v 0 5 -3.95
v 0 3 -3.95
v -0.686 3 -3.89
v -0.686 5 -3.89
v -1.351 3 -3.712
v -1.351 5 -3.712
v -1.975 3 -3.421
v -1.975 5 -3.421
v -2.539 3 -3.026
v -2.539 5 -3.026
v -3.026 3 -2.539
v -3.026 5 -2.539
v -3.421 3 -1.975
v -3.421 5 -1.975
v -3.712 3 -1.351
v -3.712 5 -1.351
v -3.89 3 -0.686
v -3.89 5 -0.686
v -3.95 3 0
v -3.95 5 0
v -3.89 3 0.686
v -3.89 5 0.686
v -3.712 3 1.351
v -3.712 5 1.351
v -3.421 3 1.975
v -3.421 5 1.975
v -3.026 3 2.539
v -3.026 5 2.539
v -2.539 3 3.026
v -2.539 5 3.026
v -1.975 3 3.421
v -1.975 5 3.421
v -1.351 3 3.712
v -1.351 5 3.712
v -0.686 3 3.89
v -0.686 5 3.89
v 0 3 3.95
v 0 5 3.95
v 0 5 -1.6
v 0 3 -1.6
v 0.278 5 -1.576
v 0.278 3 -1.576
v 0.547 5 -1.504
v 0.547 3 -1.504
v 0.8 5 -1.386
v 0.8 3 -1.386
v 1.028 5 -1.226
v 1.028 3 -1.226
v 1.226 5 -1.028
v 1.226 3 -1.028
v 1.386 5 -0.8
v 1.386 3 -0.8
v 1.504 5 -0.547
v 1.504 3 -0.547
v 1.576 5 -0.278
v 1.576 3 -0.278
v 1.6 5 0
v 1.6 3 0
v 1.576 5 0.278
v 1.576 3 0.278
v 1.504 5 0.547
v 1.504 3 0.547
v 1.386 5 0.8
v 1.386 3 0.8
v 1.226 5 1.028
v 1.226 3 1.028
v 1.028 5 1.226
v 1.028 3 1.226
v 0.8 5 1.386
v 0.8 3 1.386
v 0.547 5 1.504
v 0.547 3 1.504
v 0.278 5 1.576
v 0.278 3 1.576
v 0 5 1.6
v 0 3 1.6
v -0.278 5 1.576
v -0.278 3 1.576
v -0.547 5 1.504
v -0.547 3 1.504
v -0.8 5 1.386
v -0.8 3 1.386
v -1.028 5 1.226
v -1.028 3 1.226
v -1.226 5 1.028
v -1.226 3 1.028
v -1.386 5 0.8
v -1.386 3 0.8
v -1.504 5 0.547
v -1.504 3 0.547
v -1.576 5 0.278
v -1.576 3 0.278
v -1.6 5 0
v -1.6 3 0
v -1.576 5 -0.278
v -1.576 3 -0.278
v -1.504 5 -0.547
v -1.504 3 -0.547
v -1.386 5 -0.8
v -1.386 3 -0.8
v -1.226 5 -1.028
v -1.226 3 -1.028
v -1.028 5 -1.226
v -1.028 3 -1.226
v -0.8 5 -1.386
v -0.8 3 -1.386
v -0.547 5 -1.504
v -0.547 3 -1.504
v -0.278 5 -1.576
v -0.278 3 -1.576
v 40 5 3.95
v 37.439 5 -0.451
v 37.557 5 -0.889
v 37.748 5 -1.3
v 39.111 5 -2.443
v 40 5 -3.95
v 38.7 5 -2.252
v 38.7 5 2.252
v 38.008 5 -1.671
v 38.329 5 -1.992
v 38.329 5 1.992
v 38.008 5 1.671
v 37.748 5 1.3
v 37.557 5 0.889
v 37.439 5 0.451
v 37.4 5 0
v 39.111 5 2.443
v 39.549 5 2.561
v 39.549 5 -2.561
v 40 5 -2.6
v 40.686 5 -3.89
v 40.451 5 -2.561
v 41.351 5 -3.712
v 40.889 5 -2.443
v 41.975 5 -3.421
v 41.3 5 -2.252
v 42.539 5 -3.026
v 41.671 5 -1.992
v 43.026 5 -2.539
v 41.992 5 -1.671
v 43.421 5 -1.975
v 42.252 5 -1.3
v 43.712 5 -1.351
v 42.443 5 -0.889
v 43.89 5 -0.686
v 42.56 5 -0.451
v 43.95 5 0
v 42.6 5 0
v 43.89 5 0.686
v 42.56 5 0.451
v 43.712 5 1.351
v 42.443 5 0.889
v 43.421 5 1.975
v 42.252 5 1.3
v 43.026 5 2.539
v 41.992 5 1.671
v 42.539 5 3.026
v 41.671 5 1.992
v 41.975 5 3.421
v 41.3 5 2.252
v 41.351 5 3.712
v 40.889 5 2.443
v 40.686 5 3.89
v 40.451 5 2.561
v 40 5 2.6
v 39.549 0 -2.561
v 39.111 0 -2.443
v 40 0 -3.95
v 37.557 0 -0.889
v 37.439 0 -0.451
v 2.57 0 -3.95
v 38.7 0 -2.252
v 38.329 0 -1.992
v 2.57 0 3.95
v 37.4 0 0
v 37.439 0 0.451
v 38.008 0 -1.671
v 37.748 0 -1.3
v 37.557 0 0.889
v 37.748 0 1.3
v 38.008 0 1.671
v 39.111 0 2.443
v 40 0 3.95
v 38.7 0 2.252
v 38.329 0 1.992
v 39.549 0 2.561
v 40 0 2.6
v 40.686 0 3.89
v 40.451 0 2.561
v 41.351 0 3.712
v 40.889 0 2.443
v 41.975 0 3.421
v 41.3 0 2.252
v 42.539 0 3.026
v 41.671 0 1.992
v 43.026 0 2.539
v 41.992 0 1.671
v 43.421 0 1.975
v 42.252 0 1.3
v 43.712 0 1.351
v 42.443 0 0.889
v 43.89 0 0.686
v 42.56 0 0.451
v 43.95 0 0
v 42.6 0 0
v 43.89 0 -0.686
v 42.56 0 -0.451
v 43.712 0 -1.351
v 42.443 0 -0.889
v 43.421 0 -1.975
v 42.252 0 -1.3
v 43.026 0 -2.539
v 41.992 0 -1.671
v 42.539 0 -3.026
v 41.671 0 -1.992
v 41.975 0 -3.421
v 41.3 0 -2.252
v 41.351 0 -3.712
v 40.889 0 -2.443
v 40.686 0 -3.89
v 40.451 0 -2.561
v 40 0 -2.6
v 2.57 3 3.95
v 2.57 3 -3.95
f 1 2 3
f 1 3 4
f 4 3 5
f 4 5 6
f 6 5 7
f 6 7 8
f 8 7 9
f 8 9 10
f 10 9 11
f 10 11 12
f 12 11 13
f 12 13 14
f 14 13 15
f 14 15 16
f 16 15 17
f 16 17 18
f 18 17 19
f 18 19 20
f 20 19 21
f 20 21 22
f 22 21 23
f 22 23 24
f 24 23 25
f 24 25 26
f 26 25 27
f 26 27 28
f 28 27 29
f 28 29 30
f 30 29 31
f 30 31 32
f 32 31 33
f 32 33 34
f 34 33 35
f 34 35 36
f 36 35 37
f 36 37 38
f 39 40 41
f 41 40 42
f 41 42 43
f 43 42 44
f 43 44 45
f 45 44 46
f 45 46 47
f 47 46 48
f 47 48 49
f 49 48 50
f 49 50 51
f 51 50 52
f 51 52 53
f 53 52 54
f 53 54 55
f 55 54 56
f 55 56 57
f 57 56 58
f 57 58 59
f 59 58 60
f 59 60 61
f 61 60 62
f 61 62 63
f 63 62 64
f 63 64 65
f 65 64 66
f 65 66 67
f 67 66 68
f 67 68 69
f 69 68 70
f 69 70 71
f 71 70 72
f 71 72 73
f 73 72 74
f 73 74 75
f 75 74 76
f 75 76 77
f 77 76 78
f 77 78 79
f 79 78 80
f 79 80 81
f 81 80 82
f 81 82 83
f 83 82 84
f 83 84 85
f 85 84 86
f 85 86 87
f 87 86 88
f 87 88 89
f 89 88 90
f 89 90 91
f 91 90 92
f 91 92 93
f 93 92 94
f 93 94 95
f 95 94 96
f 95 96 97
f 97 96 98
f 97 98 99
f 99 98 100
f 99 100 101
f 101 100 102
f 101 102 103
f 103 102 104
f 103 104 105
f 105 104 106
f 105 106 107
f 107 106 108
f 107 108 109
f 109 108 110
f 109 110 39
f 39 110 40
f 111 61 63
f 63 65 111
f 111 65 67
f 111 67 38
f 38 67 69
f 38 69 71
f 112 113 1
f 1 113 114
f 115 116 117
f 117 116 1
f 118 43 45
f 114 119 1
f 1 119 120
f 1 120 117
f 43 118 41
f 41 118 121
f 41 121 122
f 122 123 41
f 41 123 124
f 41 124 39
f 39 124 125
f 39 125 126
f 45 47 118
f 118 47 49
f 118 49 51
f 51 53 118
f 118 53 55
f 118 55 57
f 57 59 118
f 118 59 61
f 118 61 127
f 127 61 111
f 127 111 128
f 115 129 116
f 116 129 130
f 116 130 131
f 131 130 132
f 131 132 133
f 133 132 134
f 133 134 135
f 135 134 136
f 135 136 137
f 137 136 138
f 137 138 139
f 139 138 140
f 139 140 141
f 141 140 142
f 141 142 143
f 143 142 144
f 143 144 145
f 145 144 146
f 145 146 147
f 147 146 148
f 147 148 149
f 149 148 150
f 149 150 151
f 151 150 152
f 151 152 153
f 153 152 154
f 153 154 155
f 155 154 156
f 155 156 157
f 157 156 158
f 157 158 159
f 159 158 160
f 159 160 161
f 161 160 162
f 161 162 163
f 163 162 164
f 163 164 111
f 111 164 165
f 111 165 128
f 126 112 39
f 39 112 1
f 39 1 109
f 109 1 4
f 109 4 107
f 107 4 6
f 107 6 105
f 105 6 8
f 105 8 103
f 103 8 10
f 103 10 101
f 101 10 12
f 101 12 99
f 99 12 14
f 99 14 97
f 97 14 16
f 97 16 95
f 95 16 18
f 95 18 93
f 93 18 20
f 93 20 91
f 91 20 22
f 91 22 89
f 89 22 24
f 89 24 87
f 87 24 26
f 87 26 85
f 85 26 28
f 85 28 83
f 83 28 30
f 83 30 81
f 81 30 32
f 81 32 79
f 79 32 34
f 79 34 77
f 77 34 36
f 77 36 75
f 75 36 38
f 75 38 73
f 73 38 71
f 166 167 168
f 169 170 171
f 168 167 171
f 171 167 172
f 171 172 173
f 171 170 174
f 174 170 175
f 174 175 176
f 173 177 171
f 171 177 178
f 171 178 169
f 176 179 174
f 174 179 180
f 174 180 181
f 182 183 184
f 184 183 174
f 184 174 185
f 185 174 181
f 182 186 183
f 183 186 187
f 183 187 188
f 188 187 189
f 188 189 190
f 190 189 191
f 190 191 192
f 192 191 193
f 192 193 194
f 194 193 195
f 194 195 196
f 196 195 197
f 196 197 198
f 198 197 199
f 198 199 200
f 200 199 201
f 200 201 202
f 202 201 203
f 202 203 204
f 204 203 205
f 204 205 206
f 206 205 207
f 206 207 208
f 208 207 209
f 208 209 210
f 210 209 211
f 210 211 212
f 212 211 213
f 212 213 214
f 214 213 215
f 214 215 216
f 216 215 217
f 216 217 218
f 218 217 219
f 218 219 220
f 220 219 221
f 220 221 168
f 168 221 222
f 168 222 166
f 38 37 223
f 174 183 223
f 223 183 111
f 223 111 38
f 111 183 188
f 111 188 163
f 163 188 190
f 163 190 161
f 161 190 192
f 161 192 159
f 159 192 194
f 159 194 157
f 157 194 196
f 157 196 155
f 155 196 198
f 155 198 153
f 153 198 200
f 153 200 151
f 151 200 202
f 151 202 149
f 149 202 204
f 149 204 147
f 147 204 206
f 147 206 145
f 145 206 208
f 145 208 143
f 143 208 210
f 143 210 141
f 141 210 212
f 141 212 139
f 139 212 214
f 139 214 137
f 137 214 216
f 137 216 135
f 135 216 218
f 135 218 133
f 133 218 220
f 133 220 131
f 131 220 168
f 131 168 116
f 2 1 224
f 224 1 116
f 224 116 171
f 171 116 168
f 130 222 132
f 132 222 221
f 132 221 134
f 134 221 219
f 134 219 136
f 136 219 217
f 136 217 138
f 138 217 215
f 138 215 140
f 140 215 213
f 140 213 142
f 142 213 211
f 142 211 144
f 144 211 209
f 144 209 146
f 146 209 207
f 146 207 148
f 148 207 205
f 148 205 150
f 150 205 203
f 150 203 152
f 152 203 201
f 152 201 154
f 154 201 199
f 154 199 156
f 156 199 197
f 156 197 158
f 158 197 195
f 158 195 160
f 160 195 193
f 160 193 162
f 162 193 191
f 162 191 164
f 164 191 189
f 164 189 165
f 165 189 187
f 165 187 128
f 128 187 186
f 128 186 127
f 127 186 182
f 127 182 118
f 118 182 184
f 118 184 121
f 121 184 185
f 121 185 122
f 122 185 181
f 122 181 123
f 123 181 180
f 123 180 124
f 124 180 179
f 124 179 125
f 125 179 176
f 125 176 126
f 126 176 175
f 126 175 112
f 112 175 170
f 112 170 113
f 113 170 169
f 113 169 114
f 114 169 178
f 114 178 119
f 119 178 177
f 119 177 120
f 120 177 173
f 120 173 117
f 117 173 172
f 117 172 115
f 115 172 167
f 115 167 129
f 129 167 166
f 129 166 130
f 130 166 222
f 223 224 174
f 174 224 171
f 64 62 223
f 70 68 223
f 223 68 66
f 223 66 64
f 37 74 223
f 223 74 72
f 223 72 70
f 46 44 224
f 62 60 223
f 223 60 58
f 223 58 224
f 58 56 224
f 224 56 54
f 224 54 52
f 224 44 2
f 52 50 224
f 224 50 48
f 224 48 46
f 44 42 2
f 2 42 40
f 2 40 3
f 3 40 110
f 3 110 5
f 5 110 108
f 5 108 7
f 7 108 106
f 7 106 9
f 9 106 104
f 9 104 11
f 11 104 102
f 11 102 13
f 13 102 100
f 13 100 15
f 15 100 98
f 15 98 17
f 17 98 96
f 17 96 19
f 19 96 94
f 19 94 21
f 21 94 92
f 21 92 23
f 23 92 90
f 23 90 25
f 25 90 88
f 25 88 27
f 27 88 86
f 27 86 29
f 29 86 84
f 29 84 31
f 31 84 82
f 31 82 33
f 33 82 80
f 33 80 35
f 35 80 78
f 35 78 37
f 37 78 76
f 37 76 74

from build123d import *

# Parameters (mm, degrees)
SKETCH1_R           = 1.6
SKETCH1_R_2         = 2.6
BOSS_EXTRUDE1_DEPTH = 5
SKETCH2_R           = 1.6
CUT_EXTRUDE1_DEPTH  = 3


with BuildPart() as part:
    # Sketch1 → Boss-Extrude1 (new body)
    with BuildSketch(Plane(origin=(0, 0, 0), x_dir=(1, 0, 0), z_dir=(0, 1, 0))):
        with BuildLine():
            Line((0, 3.95), (40, 3.95))
            ThreePointArc((40, 3.95), (43.95, 0), (40, -3.95))
            Line((40, -3.95), (0, -3.95))
            ThreePointArc((0, -3.95), (-3.95, 0), (0, 3.95))
        make_face()
        Circle(SKETCH1_R, mode=Mode.SUBTRACT)
        with Locations((40, 0)):
            Circle(SKETCH1_R_2, mode=Mode.SUBTRACT)
    extrude(amount=BOSS_EXTRUDE1_DEPTH)

    # Sketch2 → Cut-Extrude1 (cut)
    with BuildSketch(Plane.XZ):
        with BuildLine():
            Line((2.569533032, 3), (2.569533032, -3))
            Line((2.569533032, -3), (2.569533032, -3.95))
            Line((2.569533032, -3.95), (0, -3.95))
            ThreePointArc((0, -3.95), (-3.95, 0), (0, 3.95))
            Line((0, 3.95), (2.569533032, 3.95))
            Line((2.569533032, 3.95), (2.569533032, 3))
        make_face()
        Circle(SKETCH2_R, mode=Mode.SUBTRACT)
    extrude(amount=-CUT_EXTRUDE1_DEPTH, mode=Mode.SUBTRACT)


solid = part.part
